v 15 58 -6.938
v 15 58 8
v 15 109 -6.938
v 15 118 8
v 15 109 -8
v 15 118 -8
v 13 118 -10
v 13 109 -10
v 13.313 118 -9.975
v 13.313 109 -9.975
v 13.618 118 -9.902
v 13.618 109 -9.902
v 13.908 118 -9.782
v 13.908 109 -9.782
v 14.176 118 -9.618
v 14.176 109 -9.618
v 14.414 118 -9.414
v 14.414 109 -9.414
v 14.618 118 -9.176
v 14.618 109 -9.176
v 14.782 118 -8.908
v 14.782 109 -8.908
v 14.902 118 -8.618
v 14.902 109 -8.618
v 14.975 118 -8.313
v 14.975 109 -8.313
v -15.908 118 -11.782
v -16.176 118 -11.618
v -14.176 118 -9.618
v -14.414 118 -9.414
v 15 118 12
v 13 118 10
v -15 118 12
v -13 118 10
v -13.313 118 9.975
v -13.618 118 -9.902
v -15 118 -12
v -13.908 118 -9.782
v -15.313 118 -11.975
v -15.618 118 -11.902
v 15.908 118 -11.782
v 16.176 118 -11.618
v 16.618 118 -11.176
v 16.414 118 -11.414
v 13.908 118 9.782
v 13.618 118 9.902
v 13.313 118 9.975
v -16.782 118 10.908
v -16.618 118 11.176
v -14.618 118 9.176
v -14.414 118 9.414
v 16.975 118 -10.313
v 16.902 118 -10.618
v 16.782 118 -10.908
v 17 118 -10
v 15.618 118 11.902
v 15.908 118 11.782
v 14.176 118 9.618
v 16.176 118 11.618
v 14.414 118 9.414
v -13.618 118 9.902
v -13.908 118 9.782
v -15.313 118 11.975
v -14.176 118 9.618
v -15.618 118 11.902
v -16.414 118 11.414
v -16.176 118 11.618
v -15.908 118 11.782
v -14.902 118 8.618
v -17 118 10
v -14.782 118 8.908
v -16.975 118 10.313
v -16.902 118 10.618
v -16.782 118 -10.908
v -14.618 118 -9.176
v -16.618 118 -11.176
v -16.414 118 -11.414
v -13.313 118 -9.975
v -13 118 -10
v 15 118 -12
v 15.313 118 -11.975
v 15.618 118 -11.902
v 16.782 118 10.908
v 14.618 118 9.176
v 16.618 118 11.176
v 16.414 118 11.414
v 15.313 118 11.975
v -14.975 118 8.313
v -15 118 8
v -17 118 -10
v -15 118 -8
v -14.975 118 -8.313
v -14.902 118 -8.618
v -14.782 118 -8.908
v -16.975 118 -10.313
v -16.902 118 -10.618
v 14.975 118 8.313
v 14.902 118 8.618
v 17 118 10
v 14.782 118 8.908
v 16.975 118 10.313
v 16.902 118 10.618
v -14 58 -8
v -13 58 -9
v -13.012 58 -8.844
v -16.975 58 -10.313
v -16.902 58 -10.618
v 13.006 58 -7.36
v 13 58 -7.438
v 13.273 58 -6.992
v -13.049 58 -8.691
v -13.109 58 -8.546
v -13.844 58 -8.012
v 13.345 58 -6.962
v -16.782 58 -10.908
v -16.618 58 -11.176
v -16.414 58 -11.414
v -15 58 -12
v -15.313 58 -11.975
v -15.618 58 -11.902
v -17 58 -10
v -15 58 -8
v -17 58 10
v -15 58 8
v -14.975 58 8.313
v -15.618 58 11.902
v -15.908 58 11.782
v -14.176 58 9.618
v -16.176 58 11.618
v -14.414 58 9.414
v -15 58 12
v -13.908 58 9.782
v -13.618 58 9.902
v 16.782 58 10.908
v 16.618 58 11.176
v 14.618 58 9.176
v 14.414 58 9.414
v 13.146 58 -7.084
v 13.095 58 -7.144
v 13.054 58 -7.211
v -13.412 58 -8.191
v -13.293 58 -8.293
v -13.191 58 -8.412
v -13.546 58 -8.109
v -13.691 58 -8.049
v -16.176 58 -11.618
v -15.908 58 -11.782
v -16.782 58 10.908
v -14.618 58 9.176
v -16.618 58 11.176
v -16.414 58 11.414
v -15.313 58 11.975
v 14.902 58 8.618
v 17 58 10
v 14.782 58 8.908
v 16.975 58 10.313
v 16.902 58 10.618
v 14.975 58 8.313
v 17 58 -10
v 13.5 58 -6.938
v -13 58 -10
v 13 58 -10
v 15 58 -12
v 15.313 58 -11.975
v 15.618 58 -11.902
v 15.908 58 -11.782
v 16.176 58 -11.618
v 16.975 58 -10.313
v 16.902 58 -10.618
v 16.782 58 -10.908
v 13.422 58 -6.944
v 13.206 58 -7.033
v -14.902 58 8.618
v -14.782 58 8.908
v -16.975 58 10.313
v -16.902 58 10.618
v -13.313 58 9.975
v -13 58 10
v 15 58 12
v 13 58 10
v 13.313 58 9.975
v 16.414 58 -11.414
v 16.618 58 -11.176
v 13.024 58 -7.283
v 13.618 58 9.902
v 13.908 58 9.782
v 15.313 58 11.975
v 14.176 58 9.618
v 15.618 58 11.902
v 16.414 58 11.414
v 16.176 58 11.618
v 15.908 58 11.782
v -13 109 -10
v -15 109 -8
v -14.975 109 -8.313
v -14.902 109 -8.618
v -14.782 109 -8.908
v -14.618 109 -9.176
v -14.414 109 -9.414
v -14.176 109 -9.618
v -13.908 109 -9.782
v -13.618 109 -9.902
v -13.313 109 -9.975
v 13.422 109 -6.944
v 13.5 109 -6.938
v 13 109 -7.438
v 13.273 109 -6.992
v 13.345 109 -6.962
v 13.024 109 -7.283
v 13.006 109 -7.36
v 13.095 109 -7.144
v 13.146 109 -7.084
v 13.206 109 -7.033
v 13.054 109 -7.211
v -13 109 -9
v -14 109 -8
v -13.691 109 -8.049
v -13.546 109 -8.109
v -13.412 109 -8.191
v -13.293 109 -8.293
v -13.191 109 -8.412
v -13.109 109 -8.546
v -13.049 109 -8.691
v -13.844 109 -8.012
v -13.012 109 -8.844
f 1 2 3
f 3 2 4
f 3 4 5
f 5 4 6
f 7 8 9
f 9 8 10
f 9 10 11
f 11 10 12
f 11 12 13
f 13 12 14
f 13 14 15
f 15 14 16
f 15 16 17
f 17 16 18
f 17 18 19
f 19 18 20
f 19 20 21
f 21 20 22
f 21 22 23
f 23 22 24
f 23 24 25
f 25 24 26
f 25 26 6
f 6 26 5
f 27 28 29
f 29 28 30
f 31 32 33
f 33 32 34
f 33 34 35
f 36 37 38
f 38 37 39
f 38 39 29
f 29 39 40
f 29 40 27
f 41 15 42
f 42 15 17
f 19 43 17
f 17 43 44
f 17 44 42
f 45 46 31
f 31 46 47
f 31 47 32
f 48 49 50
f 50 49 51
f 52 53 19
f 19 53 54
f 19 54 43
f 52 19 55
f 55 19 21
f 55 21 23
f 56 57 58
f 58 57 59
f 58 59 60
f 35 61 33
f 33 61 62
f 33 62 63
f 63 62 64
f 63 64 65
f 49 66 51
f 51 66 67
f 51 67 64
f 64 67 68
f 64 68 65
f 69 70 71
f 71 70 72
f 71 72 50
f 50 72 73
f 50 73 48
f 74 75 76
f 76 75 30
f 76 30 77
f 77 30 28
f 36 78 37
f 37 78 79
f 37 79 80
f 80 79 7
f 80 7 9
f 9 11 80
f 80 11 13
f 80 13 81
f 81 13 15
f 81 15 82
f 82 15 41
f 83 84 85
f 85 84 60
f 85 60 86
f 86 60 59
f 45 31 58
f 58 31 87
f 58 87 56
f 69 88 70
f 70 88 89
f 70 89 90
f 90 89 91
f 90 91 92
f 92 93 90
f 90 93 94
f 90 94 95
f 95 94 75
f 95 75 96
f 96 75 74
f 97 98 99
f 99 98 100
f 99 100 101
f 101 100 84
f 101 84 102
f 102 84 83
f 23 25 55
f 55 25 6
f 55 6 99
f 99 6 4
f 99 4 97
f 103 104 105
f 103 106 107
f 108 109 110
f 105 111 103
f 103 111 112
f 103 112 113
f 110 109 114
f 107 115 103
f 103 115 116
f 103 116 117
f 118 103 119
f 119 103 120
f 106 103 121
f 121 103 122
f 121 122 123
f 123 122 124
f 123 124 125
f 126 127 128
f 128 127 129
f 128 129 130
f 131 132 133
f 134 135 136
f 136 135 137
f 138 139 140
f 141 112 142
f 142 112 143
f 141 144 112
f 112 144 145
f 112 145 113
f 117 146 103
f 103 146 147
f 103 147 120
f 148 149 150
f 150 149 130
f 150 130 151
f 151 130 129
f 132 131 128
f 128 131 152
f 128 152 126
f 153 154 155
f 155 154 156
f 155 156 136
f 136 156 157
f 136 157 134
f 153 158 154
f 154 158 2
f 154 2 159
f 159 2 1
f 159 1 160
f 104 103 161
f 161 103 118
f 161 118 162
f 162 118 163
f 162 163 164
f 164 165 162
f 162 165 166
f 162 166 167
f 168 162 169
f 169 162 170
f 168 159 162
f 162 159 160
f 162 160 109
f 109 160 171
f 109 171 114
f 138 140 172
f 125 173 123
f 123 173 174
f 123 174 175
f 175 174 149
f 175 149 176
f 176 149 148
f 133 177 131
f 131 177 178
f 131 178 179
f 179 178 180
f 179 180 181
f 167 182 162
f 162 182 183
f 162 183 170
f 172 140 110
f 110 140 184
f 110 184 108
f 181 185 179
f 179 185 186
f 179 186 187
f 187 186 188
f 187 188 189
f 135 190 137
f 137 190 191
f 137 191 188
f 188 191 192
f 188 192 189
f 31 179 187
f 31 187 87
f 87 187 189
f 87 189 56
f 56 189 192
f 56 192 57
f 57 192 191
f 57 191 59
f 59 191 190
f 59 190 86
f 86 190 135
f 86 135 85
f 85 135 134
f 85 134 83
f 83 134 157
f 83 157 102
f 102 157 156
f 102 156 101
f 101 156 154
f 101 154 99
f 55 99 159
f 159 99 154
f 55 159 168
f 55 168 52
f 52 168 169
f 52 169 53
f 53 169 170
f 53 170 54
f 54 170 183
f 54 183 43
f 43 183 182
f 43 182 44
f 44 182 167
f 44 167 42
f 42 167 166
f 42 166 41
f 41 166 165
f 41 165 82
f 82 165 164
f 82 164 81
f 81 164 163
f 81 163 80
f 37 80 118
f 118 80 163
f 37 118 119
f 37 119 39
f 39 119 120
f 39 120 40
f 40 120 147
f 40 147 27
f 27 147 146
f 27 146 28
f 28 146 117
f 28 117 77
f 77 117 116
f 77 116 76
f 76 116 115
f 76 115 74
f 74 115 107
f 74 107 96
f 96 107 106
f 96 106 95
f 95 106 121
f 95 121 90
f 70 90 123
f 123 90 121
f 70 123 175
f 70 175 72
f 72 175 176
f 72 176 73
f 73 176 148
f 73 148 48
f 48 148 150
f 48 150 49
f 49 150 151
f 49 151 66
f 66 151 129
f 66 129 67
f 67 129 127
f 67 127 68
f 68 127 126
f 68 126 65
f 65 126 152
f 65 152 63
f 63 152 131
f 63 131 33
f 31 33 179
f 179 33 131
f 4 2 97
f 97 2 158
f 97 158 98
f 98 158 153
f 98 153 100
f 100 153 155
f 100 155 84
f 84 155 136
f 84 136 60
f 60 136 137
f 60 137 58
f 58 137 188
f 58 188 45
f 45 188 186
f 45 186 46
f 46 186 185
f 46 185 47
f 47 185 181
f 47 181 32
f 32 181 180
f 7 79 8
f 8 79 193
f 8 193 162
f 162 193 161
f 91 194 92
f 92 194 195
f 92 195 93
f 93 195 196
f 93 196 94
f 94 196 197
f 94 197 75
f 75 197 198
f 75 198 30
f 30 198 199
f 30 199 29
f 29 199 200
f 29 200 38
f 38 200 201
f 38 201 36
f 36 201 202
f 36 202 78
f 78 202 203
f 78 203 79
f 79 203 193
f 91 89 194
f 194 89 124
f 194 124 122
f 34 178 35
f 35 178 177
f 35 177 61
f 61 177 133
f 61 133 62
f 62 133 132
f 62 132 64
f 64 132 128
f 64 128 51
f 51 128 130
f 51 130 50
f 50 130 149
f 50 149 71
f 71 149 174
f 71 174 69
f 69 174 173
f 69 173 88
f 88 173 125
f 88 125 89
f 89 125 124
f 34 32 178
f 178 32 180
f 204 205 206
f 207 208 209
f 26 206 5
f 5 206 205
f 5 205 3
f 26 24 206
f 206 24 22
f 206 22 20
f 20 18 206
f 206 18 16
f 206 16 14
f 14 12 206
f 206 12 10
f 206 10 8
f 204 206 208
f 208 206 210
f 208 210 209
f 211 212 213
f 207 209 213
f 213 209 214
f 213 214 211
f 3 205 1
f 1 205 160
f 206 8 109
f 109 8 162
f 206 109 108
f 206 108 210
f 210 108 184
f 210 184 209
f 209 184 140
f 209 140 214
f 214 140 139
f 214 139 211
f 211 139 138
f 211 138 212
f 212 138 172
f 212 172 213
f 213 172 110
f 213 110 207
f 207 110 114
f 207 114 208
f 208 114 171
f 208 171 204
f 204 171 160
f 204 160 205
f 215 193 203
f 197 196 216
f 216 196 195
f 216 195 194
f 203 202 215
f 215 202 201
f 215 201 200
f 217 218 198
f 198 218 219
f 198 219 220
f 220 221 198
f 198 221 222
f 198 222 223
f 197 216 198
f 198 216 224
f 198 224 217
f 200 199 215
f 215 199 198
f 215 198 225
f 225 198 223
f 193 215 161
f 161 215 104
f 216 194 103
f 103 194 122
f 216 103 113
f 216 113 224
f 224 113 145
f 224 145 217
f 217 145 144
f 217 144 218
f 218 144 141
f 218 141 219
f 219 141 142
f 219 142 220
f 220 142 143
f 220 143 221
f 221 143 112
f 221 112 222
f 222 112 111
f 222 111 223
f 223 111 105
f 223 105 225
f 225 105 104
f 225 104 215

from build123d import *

# Parameters (mm, degrees)
BOSS_EXTRUDE4_DEPTH = 60
BOSS_EXTRUDE5_DEPTH = 51


with BuildPart() as part:
    # Sketch8 → Boss-Extrude4 (new body)
    with BuildSketch(Plane(origin=(0, 58, 0), x_dir=(1, 0, 0), z_dir=(0, 1, 0))):
        with BuildLine():
            Line((-15, -12), (15, -12))
            ThreePointArc((15, -12), (16.414213562, -11.414213562), (17, -10))
            Line((17, -10), (17, 10))
            ThreePointArc((17, 10), (16.414213562, 11.414213562), (15, 12))
            Line((15, 12), (-15, 12))
            ThreePointArc((-15, 12), (-16.414213562, 11.414213562), (-17, 10))
            Line((-17, 10), (-17, -10))
            ThreePointArc((-17, -10), (-16.414213562, -11.414213562), (-15, -12))
        make_face()
        with BuildLine():
            Line((-13, -10), (13, -10))
            ThreePointArc((13, -10), (14.414213562, -9.414213562), (15, -8))
            Line((15, -8), (15, 8))
            ThreePointArc((15, 8), (14.414213562, 9.414213562), (13, 10))
            Line((13, 10), (-13, 10))
            ThreePointArc((-13, 10), (-14.414213562, 9.414213562), (-15, 8))
            Line((-15, 8), (-15, -8))
            ThreePointArc((-15, -8), (-14.414213562, -9.414213562), (-13, -10))
        make_face(mode=Mode.SUBTRACT)
    extrude(amount=BOSS_EXTRUDE4_DEPTH)

    # Sketch11 → Boss-Extrude5 (add)
    with BuildSketch(Plane(origin=(0, 58, 0), x_dir=(1, 0, 0), z_dir=(0, 1, 0))):
        with BuildLine():
            Line((13, 10), (15, 10))
            Line((15, 10), (15, 6.937911183))
            Line((15, 6.937911183), (13.5, 6.937911183))
            ThreePointArc((13.5, 6.937911183), (13.146446609, 7.084357793), (13, 7.437911183))
            Line((13, 7.437911183), (13, 10))
        make_face()
        with BuildLine():
            Line((-13, 10), (-15, 10))
            Line((-15, 10), (-15, 8))
            Line((-15, 8), (-14, 8))
            ThreePointArc((-14, 8), (-13.292893219, 8.292893219), (-13, 9))
            Line((-13, 9), (-13, 10))
        make_face()
    extrude(amount=BOSS_EXTRUDE5_DEPTH)


solid = part.part
